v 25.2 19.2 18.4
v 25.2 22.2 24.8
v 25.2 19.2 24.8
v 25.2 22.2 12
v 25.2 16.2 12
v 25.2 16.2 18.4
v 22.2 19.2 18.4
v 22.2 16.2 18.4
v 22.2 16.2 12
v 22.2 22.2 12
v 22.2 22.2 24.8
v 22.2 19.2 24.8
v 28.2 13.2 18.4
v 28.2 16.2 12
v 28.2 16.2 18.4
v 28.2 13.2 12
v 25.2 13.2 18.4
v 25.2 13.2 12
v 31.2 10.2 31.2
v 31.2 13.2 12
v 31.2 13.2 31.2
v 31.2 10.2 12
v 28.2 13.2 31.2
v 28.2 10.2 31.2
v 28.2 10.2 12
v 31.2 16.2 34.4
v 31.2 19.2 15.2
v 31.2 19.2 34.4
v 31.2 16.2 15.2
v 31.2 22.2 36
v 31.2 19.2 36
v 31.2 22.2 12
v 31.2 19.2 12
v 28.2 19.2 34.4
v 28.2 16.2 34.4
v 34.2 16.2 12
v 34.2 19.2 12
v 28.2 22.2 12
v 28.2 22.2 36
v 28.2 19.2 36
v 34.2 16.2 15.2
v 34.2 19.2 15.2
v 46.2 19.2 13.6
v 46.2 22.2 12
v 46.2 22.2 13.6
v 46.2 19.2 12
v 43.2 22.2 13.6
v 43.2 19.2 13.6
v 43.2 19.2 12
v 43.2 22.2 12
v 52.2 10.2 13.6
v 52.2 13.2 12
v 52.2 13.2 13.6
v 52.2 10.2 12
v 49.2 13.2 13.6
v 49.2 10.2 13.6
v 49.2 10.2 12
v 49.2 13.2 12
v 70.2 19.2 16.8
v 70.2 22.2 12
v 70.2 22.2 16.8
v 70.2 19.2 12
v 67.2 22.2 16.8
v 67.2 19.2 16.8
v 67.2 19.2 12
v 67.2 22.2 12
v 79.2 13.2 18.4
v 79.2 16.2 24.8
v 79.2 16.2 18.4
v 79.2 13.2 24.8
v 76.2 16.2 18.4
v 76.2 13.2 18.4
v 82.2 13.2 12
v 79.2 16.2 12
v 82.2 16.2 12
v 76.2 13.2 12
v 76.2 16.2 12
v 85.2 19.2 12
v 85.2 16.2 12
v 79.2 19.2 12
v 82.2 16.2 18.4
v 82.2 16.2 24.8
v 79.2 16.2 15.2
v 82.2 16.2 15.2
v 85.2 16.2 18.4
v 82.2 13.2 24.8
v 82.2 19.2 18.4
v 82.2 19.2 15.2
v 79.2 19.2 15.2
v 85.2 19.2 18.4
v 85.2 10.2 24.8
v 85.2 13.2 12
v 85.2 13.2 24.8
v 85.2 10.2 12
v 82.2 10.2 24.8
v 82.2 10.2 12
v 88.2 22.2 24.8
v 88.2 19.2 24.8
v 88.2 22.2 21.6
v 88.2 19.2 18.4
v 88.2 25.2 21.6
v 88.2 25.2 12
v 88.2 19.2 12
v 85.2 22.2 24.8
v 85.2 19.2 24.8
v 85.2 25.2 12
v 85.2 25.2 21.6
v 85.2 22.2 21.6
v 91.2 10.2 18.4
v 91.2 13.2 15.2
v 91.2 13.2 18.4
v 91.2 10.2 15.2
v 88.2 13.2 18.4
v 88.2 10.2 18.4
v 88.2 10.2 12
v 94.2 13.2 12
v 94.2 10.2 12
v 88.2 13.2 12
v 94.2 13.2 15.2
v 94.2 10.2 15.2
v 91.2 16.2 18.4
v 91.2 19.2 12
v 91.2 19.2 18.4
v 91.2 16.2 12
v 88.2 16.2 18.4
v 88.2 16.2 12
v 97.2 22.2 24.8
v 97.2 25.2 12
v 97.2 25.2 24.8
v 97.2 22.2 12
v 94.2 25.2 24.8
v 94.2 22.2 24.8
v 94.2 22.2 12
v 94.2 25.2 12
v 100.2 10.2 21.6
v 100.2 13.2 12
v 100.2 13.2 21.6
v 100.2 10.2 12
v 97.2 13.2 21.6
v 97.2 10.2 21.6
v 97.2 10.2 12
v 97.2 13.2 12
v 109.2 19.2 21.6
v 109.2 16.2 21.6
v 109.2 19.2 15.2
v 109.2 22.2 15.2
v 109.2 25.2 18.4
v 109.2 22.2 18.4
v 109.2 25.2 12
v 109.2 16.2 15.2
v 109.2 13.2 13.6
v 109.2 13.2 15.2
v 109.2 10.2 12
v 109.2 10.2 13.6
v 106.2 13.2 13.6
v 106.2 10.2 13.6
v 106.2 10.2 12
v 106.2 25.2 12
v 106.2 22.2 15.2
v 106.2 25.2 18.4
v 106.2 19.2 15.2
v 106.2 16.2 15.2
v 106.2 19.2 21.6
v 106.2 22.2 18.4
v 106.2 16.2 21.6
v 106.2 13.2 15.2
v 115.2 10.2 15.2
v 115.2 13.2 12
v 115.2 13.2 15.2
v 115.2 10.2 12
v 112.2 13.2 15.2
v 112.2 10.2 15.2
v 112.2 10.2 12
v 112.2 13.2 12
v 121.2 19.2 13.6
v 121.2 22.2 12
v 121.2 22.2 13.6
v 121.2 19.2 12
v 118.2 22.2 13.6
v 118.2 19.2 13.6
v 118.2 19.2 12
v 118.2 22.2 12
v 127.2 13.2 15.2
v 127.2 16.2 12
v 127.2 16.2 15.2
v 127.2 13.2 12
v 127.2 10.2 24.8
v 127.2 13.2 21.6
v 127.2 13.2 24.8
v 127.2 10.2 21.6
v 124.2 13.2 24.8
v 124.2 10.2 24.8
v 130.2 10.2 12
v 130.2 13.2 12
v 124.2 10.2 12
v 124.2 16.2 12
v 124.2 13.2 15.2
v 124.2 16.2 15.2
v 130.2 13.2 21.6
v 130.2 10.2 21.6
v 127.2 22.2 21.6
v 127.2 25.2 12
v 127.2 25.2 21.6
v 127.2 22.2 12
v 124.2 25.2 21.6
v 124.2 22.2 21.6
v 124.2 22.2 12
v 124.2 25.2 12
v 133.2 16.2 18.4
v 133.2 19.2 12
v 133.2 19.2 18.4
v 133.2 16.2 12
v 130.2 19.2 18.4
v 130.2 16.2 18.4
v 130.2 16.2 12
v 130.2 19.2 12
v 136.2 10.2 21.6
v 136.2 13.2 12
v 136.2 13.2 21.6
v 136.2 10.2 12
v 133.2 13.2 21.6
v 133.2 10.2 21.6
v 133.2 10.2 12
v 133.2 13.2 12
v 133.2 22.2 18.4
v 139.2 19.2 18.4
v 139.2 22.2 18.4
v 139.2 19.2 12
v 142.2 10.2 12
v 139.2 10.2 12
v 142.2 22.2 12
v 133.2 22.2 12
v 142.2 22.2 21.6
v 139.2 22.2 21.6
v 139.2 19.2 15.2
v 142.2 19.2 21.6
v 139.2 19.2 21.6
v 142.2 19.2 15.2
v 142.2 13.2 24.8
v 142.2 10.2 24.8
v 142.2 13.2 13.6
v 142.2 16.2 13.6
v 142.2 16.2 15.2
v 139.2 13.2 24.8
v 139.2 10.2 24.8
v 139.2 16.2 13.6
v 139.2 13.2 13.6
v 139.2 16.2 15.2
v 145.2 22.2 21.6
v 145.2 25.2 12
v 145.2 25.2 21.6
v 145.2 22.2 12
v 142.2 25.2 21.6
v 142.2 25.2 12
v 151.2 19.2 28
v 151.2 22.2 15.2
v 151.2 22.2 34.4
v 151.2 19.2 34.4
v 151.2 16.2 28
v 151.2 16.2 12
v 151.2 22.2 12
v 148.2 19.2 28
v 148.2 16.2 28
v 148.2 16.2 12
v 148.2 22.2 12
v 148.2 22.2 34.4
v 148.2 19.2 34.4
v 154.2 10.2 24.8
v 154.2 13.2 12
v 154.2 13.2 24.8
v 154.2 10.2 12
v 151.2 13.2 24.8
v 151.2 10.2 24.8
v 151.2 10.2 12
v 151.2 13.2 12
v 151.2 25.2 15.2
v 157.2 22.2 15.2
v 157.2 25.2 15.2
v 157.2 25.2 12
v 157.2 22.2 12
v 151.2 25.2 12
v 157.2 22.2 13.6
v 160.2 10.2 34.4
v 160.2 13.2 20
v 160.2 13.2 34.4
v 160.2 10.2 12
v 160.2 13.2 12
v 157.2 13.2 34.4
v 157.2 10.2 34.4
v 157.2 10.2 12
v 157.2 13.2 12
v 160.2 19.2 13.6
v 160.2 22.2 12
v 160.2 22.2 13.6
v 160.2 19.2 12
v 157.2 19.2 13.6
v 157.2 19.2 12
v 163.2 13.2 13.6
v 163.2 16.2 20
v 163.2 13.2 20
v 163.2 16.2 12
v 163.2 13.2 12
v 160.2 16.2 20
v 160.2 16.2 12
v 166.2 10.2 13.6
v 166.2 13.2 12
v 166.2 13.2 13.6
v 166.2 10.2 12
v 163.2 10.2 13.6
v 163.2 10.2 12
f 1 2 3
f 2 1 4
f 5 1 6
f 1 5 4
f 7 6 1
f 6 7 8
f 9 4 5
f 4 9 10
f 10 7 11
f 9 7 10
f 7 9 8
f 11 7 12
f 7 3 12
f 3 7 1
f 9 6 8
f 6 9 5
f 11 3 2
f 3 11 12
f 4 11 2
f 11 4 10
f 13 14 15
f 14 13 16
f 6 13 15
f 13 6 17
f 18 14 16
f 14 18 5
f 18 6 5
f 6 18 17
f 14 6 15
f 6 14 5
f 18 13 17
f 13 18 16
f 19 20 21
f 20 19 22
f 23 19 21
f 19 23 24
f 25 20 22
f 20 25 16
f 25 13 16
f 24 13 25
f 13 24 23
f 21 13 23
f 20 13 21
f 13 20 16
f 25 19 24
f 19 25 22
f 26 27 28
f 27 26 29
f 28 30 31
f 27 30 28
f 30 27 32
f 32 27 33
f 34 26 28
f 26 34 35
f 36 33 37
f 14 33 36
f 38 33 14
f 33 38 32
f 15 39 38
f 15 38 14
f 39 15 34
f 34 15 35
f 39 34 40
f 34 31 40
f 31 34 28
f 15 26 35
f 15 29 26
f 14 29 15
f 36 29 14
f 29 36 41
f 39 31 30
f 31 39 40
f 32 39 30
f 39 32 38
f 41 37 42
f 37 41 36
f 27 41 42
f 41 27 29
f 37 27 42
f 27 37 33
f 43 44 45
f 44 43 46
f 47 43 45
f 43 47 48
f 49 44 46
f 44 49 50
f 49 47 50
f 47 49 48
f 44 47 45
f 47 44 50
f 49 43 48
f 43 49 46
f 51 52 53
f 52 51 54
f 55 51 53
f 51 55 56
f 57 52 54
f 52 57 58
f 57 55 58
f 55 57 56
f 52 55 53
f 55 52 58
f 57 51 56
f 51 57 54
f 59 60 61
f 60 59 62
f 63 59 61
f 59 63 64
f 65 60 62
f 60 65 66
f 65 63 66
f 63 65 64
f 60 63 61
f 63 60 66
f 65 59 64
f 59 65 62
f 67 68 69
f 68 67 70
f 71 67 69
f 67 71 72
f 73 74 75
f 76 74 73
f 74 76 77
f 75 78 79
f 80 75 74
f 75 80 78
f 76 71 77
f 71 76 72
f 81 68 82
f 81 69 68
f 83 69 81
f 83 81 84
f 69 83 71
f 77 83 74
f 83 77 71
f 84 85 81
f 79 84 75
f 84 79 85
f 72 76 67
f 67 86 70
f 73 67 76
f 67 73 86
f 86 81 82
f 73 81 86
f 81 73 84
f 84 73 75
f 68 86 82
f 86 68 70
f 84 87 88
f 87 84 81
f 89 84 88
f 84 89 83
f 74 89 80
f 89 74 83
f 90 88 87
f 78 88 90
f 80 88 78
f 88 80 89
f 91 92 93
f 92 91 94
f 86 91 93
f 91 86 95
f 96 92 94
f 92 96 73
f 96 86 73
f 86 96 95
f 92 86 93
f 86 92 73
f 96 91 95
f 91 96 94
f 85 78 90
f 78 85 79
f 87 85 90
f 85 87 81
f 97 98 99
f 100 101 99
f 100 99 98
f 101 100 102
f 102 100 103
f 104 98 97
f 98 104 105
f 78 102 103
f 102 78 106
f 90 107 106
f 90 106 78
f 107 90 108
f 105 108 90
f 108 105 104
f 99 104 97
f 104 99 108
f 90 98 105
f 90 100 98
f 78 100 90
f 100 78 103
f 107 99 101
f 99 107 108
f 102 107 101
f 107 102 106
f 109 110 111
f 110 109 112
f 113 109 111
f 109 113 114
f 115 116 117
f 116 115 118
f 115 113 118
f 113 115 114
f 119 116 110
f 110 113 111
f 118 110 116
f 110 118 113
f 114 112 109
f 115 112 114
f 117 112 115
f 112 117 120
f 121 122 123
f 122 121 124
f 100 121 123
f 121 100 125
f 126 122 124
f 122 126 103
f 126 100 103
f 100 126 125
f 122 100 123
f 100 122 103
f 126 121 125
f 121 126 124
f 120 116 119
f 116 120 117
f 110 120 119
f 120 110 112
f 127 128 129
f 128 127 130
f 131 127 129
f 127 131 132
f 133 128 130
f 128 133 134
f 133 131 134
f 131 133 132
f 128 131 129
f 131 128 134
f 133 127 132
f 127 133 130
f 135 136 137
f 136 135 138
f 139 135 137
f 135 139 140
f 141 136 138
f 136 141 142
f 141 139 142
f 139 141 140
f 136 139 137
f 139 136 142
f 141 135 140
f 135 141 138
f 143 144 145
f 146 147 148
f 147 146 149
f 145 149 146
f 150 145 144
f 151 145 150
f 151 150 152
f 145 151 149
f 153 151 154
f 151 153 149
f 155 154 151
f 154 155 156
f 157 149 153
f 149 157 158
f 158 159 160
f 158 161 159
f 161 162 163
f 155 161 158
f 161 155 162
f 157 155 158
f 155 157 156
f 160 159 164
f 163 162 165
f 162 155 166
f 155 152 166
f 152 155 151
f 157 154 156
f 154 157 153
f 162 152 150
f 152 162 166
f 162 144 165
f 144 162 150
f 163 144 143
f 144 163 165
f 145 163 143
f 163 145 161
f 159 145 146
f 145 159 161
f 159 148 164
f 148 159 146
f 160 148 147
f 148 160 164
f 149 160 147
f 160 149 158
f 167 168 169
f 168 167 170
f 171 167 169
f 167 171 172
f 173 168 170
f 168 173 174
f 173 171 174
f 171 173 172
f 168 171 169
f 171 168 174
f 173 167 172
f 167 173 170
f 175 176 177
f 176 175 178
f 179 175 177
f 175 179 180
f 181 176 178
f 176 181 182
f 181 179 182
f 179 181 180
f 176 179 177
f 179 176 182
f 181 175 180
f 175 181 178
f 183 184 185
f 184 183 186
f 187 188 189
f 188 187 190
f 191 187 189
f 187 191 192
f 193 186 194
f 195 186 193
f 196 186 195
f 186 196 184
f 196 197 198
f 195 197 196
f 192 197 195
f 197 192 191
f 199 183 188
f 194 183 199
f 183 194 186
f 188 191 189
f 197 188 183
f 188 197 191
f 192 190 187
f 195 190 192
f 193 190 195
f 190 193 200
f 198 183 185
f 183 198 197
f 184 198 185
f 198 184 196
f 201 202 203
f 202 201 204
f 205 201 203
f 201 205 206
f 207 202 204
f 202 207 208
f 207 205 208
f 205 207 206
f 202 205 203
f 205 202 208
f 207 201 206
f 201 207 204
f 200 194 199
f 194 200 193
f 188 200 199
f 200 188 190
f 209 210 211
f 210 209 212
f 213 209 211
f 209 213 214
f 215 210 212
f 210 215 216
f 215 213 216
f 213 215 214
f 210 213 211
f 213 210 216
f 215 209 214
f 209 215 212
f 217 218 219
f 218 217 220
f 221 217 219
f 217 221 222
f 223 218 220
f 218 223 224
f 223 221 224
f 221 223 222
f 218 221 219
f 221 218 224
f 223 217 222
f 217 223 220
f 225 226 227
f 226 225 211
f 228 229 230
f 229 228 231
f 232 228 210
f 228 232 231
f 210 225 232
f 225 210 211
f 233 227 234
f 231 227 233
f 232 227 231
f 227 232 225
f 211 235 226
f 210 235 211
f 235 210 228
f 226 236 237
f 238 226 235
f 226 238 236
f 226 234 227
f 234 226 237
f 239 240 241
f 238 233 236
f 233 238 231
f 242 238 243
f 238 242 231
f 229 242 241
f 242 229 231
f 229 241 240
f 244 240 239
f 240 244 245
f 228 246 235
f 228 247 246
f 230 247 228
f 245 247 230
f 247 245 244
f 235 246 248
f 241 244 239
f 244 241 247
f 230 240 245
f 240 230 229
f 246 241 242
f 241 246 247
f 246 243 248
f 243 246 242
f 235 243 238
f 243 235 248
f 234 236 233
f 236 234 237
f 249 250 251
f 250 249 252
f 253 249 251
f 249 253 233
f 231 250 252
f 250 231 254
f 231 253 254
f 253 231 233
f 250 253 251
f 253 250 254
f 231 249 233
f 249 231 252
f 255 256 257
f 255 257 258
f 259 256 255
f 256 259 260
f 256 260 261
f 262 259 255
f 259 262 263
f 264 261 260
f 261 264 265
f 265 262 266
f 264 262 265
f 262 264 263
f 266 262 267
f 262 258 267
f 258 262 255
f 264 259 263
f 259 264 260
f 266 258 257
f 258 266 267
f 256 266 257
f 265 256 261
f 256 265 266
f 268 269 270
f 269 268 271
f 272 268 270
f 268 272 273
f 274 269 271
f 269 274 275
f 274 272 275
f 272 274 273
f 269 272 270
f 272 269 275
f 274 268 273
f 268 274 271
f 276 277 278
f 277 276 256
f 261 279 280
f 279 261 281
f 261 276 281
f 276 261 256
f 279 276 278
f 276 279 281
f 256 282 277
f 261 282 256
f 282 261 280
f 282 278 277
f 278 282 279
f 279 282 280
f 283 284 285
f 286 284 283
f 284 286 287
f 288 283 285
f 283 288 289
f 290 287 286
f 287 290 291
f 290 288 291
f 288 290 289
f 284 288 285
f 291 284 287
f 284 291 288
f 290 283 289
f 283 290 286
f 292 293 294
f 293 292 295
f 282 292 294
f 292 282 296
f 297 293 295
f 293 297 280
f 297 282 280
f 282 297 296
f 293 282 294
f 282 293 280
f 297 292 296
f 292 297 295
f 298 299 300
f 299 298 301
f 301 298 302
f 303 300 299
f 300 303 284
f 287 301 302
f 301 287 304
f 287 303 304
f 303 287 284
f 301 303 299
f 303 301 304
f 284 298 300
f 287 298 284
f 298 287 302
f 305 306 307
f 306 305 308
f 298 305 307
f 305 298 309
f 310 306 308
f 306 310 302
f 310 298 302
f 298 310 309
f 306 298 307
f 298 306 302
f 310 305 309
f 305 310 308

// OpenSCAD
union() {
	translate(v = [22.200000000000003, 16.200000000000003, 12.0]) {
		cube(size = [3.0, 3.0, 6.4]);
	}
	translate(v = [22.200000000000003, 19.200000000000003, 12.0]) {
		cube(size = [3.0, 3.0, 12.8]);
	}
	translate(v = [25.200000000000003, 13.200000000000001, 12.0]) {
		cube(size = [3.0, 3.0, 6.4]);
	}
	translate(v = [28.200000000000003, 10.200000000000001, 12.0]) {
		cube(size = [3.0, 3.0, 19.2]);
	}
	translate(v = [28.200000000000003, 16.200000000000003, 12.0]) {
		cube(size = [3.0, 3.0, 22.4]);
	}
	translate(v = [28.200000000000003, 19.200000000000003, 12.0]) {
		cube(size = [3.0, 3.0, 24.0]);
	}
	translate(v = [31.200000000000003, 16.200000000000003, 12.0]) {
		cube(size = [3.0, 3.0, 3.2]);
	}
	translate(v = [43.2, 19.200000000000003, 12.0]) {
		cube(size = [3.0, 3.0, 1.6]);
	}
	translate(v = [49.2, 10.200000000000001, 12.0]) {
		cube(size = [3.0, 3.0, 1.6]);
	}
	translate(v = [67.2, 19.200000000000003, 12.0]) {
		cube(size = [3.0, 3.0, 4.8]);
	}
	translate(v = [76.2, 13.200000000000001, 12.0]) {
		cube(size = [3.0, 3.0, 6.4]);
	}
	translate(v = [79.2, 13.200000000000001, 12.0]) {
		cube(size = [3.0, 3.0, 12.8]);
	}
	translate(v = [79.2, 16.200000000000003, 12.0]) {
		cube(size = [3.0, 3.0, 3.2]);
	}
	translate(v = [82.2, 10.200000000000001, 12.0]) {
		cube(size = [3.0, 3.0, 12.8]);
	}
	translate(v = [82.2, 16.200000000000003, 12.0]) {
		cube(size = [3.0, 3.0, 6.4]);
	}
	translate(v = [85.2, 19.200000000000003, 12.0]) {
		cube(size = [3.0, 3.0, 12.8]);
	}
	translate(v = [85.2, 22.200000000000003, 12.0]) {
		cube(size = [3.0, 3.0, 9.6]);
	}
	translate(v = [88.2, 10.200000000000001, 12.0]) {
		cube(size = [3.0, 3.0, 6.4]);
	}
	translate(v = [88.2, 16.200000000000003, 12.0]) {
		cube(size = [3.0, 3.0, 6.4]);
	}
	translate(v = [91.2, 10.200000000000001, 12.0]) {
		cube(size = [3.0, 3.0, 3.2]);
	}
	translate(v = [94.2, 22.200000000000003, 12.0]) {
		cube(size = [3.0, 3.0, 12.8]);
	}
	translate(v = [97.2, 10.200000000000001, 12.0]) {
		cube(size = [3.0, 3.0, 9.6]);
	}
	translate(v = [106.2, 10.200000000000001, 12.0]) {
		cube(size = [3.0, 3.0, 1.6]);
	}
	translate(v = [106.2, 13.200000000000001, 12.0]) {
		cube(size = [3.0, 3.0, 3.2]);
	}
	translate(v = [106.2, 16.200000000000003, 12.0]) {
		cube(size = [3.0, 3.0, 9.6]);
	}
	translate(v = [106.2, 19.200000000000003, 12.0]) {
		cube(size = [3.0, 3.0, 3.2]);
	}
	translate(v = [106.2, 22.200000000000003, 12.0]) {
		cube(size = [3.0, 3.0, 6.4]);
	}
	translate(v = [112.2, 10.200000000000001, 12.0]) {
		cube(size = [3.0, 3.0, 3.2]);
	}
	translate(v = [118.2, 19.200000000000003, 12.0]) {
		cube(size = [3.0, 3.0, 1.6]);
	}
	translate(v = [124.2, 10.200000000000001, 12.0]) {
		cube(size = [3.0, 3.0, 12.8]);
	}
	translate(v = [124.2, 13.200000000000001, 12.0]) {
		cube(size = [3.0, 3.0, 3.2]);
	}
	translate(v = [124.2, 22.200000000000003, 12.0]) {
		cube(size = [3.0, 3.0, 9.6]);
	}
	translate(v = [127.2, 10.200000000000001, 12.0]) {
		cube(size = [3.0, 3.0, 9.6]);
	}
	translate(v = [130.2, 16.200000000000003, 12.0]) {
		cube(size = [3.0, 3.0, 6.4]);
	}
	translate(v = [133.2, 10.200000000000001, 12.0]) {
		cube(size = [3.0, 3.0, 9.6]);
	}
	translate(v = [133.2, 19.200000000000003, 12.0]) {
		cube(size = [3.0, 3.0, 6.4]);
	}
	translate(v = [136.2, 19.200000000000003, 12.0]) {
		cube(size = [3.0, 3.0, 6.4]);
	}
	translate(v = [139.2, 10.200000000000001, 12.0]) {
		cube(size = [3.0, 3.0, 12.8]);
	}
	translate(v = [139.2, 13.200000000000001, 12.0]) {
		cube(size = [3.0, 3.0, 1.6]);
	}
	translate(v = [139.2, 16.200000000000003, 12.0]) {
		cube(size = [3.0, 3.0, 3.2]);
	}
	translate(v = [139.2, 19.200000000000003, 12.0]) {
		cube(size = [3.0, 3.0, 9.6]);
	}
	translate(v = [142.2, 22.200000000000003, 12.0]) {
		cube(size = [3.0, 3.0, 9.6]);
	}
	translate(v = [148.2, 16.200000000000003, 12.0]) {
		cube(size = [3.0, 3.0, 16.0]);
	}
	translate(v = [148.2, 19.200000000000003, 12.0]) {
		cube(size = [3.0, 3.0, 22.4]);
	}
	translate(v = [151.2, 10.200000000000001, 12.0]) {
		cube(size = [3.0, 3.0, 12.8]);
	}
	translate(v = [151.2, 22.200000000000003, 12.0]) {
		cube(size = [3.0, 3.0, 3.2]);
	}
	translate(v = [154.2, 22.200000000000003, 12.0]) {
		cube(size = [3.0, 3.0, 3.2]);
	}
	translate(v = [157.2, 10.200000000000001, 12.0]) {
		cube(size = [3.0, 3.0, 22.4]);
	}
	translate(v = [157.2, 19.200000000000003, 12.0]) {
		cube(size = [3.0, 3.0, 1.6]);
	}
	translate(v = [160.2, 13.200000000000001, 12.0]) {
		cube(size = [3.0, 3.0, 8.0]);
	}
	translate(v = [163.2, 10.200000000000001, 12.0]) {
		cube(size = [3.0, 3.0, 1.6]);
	}
}
